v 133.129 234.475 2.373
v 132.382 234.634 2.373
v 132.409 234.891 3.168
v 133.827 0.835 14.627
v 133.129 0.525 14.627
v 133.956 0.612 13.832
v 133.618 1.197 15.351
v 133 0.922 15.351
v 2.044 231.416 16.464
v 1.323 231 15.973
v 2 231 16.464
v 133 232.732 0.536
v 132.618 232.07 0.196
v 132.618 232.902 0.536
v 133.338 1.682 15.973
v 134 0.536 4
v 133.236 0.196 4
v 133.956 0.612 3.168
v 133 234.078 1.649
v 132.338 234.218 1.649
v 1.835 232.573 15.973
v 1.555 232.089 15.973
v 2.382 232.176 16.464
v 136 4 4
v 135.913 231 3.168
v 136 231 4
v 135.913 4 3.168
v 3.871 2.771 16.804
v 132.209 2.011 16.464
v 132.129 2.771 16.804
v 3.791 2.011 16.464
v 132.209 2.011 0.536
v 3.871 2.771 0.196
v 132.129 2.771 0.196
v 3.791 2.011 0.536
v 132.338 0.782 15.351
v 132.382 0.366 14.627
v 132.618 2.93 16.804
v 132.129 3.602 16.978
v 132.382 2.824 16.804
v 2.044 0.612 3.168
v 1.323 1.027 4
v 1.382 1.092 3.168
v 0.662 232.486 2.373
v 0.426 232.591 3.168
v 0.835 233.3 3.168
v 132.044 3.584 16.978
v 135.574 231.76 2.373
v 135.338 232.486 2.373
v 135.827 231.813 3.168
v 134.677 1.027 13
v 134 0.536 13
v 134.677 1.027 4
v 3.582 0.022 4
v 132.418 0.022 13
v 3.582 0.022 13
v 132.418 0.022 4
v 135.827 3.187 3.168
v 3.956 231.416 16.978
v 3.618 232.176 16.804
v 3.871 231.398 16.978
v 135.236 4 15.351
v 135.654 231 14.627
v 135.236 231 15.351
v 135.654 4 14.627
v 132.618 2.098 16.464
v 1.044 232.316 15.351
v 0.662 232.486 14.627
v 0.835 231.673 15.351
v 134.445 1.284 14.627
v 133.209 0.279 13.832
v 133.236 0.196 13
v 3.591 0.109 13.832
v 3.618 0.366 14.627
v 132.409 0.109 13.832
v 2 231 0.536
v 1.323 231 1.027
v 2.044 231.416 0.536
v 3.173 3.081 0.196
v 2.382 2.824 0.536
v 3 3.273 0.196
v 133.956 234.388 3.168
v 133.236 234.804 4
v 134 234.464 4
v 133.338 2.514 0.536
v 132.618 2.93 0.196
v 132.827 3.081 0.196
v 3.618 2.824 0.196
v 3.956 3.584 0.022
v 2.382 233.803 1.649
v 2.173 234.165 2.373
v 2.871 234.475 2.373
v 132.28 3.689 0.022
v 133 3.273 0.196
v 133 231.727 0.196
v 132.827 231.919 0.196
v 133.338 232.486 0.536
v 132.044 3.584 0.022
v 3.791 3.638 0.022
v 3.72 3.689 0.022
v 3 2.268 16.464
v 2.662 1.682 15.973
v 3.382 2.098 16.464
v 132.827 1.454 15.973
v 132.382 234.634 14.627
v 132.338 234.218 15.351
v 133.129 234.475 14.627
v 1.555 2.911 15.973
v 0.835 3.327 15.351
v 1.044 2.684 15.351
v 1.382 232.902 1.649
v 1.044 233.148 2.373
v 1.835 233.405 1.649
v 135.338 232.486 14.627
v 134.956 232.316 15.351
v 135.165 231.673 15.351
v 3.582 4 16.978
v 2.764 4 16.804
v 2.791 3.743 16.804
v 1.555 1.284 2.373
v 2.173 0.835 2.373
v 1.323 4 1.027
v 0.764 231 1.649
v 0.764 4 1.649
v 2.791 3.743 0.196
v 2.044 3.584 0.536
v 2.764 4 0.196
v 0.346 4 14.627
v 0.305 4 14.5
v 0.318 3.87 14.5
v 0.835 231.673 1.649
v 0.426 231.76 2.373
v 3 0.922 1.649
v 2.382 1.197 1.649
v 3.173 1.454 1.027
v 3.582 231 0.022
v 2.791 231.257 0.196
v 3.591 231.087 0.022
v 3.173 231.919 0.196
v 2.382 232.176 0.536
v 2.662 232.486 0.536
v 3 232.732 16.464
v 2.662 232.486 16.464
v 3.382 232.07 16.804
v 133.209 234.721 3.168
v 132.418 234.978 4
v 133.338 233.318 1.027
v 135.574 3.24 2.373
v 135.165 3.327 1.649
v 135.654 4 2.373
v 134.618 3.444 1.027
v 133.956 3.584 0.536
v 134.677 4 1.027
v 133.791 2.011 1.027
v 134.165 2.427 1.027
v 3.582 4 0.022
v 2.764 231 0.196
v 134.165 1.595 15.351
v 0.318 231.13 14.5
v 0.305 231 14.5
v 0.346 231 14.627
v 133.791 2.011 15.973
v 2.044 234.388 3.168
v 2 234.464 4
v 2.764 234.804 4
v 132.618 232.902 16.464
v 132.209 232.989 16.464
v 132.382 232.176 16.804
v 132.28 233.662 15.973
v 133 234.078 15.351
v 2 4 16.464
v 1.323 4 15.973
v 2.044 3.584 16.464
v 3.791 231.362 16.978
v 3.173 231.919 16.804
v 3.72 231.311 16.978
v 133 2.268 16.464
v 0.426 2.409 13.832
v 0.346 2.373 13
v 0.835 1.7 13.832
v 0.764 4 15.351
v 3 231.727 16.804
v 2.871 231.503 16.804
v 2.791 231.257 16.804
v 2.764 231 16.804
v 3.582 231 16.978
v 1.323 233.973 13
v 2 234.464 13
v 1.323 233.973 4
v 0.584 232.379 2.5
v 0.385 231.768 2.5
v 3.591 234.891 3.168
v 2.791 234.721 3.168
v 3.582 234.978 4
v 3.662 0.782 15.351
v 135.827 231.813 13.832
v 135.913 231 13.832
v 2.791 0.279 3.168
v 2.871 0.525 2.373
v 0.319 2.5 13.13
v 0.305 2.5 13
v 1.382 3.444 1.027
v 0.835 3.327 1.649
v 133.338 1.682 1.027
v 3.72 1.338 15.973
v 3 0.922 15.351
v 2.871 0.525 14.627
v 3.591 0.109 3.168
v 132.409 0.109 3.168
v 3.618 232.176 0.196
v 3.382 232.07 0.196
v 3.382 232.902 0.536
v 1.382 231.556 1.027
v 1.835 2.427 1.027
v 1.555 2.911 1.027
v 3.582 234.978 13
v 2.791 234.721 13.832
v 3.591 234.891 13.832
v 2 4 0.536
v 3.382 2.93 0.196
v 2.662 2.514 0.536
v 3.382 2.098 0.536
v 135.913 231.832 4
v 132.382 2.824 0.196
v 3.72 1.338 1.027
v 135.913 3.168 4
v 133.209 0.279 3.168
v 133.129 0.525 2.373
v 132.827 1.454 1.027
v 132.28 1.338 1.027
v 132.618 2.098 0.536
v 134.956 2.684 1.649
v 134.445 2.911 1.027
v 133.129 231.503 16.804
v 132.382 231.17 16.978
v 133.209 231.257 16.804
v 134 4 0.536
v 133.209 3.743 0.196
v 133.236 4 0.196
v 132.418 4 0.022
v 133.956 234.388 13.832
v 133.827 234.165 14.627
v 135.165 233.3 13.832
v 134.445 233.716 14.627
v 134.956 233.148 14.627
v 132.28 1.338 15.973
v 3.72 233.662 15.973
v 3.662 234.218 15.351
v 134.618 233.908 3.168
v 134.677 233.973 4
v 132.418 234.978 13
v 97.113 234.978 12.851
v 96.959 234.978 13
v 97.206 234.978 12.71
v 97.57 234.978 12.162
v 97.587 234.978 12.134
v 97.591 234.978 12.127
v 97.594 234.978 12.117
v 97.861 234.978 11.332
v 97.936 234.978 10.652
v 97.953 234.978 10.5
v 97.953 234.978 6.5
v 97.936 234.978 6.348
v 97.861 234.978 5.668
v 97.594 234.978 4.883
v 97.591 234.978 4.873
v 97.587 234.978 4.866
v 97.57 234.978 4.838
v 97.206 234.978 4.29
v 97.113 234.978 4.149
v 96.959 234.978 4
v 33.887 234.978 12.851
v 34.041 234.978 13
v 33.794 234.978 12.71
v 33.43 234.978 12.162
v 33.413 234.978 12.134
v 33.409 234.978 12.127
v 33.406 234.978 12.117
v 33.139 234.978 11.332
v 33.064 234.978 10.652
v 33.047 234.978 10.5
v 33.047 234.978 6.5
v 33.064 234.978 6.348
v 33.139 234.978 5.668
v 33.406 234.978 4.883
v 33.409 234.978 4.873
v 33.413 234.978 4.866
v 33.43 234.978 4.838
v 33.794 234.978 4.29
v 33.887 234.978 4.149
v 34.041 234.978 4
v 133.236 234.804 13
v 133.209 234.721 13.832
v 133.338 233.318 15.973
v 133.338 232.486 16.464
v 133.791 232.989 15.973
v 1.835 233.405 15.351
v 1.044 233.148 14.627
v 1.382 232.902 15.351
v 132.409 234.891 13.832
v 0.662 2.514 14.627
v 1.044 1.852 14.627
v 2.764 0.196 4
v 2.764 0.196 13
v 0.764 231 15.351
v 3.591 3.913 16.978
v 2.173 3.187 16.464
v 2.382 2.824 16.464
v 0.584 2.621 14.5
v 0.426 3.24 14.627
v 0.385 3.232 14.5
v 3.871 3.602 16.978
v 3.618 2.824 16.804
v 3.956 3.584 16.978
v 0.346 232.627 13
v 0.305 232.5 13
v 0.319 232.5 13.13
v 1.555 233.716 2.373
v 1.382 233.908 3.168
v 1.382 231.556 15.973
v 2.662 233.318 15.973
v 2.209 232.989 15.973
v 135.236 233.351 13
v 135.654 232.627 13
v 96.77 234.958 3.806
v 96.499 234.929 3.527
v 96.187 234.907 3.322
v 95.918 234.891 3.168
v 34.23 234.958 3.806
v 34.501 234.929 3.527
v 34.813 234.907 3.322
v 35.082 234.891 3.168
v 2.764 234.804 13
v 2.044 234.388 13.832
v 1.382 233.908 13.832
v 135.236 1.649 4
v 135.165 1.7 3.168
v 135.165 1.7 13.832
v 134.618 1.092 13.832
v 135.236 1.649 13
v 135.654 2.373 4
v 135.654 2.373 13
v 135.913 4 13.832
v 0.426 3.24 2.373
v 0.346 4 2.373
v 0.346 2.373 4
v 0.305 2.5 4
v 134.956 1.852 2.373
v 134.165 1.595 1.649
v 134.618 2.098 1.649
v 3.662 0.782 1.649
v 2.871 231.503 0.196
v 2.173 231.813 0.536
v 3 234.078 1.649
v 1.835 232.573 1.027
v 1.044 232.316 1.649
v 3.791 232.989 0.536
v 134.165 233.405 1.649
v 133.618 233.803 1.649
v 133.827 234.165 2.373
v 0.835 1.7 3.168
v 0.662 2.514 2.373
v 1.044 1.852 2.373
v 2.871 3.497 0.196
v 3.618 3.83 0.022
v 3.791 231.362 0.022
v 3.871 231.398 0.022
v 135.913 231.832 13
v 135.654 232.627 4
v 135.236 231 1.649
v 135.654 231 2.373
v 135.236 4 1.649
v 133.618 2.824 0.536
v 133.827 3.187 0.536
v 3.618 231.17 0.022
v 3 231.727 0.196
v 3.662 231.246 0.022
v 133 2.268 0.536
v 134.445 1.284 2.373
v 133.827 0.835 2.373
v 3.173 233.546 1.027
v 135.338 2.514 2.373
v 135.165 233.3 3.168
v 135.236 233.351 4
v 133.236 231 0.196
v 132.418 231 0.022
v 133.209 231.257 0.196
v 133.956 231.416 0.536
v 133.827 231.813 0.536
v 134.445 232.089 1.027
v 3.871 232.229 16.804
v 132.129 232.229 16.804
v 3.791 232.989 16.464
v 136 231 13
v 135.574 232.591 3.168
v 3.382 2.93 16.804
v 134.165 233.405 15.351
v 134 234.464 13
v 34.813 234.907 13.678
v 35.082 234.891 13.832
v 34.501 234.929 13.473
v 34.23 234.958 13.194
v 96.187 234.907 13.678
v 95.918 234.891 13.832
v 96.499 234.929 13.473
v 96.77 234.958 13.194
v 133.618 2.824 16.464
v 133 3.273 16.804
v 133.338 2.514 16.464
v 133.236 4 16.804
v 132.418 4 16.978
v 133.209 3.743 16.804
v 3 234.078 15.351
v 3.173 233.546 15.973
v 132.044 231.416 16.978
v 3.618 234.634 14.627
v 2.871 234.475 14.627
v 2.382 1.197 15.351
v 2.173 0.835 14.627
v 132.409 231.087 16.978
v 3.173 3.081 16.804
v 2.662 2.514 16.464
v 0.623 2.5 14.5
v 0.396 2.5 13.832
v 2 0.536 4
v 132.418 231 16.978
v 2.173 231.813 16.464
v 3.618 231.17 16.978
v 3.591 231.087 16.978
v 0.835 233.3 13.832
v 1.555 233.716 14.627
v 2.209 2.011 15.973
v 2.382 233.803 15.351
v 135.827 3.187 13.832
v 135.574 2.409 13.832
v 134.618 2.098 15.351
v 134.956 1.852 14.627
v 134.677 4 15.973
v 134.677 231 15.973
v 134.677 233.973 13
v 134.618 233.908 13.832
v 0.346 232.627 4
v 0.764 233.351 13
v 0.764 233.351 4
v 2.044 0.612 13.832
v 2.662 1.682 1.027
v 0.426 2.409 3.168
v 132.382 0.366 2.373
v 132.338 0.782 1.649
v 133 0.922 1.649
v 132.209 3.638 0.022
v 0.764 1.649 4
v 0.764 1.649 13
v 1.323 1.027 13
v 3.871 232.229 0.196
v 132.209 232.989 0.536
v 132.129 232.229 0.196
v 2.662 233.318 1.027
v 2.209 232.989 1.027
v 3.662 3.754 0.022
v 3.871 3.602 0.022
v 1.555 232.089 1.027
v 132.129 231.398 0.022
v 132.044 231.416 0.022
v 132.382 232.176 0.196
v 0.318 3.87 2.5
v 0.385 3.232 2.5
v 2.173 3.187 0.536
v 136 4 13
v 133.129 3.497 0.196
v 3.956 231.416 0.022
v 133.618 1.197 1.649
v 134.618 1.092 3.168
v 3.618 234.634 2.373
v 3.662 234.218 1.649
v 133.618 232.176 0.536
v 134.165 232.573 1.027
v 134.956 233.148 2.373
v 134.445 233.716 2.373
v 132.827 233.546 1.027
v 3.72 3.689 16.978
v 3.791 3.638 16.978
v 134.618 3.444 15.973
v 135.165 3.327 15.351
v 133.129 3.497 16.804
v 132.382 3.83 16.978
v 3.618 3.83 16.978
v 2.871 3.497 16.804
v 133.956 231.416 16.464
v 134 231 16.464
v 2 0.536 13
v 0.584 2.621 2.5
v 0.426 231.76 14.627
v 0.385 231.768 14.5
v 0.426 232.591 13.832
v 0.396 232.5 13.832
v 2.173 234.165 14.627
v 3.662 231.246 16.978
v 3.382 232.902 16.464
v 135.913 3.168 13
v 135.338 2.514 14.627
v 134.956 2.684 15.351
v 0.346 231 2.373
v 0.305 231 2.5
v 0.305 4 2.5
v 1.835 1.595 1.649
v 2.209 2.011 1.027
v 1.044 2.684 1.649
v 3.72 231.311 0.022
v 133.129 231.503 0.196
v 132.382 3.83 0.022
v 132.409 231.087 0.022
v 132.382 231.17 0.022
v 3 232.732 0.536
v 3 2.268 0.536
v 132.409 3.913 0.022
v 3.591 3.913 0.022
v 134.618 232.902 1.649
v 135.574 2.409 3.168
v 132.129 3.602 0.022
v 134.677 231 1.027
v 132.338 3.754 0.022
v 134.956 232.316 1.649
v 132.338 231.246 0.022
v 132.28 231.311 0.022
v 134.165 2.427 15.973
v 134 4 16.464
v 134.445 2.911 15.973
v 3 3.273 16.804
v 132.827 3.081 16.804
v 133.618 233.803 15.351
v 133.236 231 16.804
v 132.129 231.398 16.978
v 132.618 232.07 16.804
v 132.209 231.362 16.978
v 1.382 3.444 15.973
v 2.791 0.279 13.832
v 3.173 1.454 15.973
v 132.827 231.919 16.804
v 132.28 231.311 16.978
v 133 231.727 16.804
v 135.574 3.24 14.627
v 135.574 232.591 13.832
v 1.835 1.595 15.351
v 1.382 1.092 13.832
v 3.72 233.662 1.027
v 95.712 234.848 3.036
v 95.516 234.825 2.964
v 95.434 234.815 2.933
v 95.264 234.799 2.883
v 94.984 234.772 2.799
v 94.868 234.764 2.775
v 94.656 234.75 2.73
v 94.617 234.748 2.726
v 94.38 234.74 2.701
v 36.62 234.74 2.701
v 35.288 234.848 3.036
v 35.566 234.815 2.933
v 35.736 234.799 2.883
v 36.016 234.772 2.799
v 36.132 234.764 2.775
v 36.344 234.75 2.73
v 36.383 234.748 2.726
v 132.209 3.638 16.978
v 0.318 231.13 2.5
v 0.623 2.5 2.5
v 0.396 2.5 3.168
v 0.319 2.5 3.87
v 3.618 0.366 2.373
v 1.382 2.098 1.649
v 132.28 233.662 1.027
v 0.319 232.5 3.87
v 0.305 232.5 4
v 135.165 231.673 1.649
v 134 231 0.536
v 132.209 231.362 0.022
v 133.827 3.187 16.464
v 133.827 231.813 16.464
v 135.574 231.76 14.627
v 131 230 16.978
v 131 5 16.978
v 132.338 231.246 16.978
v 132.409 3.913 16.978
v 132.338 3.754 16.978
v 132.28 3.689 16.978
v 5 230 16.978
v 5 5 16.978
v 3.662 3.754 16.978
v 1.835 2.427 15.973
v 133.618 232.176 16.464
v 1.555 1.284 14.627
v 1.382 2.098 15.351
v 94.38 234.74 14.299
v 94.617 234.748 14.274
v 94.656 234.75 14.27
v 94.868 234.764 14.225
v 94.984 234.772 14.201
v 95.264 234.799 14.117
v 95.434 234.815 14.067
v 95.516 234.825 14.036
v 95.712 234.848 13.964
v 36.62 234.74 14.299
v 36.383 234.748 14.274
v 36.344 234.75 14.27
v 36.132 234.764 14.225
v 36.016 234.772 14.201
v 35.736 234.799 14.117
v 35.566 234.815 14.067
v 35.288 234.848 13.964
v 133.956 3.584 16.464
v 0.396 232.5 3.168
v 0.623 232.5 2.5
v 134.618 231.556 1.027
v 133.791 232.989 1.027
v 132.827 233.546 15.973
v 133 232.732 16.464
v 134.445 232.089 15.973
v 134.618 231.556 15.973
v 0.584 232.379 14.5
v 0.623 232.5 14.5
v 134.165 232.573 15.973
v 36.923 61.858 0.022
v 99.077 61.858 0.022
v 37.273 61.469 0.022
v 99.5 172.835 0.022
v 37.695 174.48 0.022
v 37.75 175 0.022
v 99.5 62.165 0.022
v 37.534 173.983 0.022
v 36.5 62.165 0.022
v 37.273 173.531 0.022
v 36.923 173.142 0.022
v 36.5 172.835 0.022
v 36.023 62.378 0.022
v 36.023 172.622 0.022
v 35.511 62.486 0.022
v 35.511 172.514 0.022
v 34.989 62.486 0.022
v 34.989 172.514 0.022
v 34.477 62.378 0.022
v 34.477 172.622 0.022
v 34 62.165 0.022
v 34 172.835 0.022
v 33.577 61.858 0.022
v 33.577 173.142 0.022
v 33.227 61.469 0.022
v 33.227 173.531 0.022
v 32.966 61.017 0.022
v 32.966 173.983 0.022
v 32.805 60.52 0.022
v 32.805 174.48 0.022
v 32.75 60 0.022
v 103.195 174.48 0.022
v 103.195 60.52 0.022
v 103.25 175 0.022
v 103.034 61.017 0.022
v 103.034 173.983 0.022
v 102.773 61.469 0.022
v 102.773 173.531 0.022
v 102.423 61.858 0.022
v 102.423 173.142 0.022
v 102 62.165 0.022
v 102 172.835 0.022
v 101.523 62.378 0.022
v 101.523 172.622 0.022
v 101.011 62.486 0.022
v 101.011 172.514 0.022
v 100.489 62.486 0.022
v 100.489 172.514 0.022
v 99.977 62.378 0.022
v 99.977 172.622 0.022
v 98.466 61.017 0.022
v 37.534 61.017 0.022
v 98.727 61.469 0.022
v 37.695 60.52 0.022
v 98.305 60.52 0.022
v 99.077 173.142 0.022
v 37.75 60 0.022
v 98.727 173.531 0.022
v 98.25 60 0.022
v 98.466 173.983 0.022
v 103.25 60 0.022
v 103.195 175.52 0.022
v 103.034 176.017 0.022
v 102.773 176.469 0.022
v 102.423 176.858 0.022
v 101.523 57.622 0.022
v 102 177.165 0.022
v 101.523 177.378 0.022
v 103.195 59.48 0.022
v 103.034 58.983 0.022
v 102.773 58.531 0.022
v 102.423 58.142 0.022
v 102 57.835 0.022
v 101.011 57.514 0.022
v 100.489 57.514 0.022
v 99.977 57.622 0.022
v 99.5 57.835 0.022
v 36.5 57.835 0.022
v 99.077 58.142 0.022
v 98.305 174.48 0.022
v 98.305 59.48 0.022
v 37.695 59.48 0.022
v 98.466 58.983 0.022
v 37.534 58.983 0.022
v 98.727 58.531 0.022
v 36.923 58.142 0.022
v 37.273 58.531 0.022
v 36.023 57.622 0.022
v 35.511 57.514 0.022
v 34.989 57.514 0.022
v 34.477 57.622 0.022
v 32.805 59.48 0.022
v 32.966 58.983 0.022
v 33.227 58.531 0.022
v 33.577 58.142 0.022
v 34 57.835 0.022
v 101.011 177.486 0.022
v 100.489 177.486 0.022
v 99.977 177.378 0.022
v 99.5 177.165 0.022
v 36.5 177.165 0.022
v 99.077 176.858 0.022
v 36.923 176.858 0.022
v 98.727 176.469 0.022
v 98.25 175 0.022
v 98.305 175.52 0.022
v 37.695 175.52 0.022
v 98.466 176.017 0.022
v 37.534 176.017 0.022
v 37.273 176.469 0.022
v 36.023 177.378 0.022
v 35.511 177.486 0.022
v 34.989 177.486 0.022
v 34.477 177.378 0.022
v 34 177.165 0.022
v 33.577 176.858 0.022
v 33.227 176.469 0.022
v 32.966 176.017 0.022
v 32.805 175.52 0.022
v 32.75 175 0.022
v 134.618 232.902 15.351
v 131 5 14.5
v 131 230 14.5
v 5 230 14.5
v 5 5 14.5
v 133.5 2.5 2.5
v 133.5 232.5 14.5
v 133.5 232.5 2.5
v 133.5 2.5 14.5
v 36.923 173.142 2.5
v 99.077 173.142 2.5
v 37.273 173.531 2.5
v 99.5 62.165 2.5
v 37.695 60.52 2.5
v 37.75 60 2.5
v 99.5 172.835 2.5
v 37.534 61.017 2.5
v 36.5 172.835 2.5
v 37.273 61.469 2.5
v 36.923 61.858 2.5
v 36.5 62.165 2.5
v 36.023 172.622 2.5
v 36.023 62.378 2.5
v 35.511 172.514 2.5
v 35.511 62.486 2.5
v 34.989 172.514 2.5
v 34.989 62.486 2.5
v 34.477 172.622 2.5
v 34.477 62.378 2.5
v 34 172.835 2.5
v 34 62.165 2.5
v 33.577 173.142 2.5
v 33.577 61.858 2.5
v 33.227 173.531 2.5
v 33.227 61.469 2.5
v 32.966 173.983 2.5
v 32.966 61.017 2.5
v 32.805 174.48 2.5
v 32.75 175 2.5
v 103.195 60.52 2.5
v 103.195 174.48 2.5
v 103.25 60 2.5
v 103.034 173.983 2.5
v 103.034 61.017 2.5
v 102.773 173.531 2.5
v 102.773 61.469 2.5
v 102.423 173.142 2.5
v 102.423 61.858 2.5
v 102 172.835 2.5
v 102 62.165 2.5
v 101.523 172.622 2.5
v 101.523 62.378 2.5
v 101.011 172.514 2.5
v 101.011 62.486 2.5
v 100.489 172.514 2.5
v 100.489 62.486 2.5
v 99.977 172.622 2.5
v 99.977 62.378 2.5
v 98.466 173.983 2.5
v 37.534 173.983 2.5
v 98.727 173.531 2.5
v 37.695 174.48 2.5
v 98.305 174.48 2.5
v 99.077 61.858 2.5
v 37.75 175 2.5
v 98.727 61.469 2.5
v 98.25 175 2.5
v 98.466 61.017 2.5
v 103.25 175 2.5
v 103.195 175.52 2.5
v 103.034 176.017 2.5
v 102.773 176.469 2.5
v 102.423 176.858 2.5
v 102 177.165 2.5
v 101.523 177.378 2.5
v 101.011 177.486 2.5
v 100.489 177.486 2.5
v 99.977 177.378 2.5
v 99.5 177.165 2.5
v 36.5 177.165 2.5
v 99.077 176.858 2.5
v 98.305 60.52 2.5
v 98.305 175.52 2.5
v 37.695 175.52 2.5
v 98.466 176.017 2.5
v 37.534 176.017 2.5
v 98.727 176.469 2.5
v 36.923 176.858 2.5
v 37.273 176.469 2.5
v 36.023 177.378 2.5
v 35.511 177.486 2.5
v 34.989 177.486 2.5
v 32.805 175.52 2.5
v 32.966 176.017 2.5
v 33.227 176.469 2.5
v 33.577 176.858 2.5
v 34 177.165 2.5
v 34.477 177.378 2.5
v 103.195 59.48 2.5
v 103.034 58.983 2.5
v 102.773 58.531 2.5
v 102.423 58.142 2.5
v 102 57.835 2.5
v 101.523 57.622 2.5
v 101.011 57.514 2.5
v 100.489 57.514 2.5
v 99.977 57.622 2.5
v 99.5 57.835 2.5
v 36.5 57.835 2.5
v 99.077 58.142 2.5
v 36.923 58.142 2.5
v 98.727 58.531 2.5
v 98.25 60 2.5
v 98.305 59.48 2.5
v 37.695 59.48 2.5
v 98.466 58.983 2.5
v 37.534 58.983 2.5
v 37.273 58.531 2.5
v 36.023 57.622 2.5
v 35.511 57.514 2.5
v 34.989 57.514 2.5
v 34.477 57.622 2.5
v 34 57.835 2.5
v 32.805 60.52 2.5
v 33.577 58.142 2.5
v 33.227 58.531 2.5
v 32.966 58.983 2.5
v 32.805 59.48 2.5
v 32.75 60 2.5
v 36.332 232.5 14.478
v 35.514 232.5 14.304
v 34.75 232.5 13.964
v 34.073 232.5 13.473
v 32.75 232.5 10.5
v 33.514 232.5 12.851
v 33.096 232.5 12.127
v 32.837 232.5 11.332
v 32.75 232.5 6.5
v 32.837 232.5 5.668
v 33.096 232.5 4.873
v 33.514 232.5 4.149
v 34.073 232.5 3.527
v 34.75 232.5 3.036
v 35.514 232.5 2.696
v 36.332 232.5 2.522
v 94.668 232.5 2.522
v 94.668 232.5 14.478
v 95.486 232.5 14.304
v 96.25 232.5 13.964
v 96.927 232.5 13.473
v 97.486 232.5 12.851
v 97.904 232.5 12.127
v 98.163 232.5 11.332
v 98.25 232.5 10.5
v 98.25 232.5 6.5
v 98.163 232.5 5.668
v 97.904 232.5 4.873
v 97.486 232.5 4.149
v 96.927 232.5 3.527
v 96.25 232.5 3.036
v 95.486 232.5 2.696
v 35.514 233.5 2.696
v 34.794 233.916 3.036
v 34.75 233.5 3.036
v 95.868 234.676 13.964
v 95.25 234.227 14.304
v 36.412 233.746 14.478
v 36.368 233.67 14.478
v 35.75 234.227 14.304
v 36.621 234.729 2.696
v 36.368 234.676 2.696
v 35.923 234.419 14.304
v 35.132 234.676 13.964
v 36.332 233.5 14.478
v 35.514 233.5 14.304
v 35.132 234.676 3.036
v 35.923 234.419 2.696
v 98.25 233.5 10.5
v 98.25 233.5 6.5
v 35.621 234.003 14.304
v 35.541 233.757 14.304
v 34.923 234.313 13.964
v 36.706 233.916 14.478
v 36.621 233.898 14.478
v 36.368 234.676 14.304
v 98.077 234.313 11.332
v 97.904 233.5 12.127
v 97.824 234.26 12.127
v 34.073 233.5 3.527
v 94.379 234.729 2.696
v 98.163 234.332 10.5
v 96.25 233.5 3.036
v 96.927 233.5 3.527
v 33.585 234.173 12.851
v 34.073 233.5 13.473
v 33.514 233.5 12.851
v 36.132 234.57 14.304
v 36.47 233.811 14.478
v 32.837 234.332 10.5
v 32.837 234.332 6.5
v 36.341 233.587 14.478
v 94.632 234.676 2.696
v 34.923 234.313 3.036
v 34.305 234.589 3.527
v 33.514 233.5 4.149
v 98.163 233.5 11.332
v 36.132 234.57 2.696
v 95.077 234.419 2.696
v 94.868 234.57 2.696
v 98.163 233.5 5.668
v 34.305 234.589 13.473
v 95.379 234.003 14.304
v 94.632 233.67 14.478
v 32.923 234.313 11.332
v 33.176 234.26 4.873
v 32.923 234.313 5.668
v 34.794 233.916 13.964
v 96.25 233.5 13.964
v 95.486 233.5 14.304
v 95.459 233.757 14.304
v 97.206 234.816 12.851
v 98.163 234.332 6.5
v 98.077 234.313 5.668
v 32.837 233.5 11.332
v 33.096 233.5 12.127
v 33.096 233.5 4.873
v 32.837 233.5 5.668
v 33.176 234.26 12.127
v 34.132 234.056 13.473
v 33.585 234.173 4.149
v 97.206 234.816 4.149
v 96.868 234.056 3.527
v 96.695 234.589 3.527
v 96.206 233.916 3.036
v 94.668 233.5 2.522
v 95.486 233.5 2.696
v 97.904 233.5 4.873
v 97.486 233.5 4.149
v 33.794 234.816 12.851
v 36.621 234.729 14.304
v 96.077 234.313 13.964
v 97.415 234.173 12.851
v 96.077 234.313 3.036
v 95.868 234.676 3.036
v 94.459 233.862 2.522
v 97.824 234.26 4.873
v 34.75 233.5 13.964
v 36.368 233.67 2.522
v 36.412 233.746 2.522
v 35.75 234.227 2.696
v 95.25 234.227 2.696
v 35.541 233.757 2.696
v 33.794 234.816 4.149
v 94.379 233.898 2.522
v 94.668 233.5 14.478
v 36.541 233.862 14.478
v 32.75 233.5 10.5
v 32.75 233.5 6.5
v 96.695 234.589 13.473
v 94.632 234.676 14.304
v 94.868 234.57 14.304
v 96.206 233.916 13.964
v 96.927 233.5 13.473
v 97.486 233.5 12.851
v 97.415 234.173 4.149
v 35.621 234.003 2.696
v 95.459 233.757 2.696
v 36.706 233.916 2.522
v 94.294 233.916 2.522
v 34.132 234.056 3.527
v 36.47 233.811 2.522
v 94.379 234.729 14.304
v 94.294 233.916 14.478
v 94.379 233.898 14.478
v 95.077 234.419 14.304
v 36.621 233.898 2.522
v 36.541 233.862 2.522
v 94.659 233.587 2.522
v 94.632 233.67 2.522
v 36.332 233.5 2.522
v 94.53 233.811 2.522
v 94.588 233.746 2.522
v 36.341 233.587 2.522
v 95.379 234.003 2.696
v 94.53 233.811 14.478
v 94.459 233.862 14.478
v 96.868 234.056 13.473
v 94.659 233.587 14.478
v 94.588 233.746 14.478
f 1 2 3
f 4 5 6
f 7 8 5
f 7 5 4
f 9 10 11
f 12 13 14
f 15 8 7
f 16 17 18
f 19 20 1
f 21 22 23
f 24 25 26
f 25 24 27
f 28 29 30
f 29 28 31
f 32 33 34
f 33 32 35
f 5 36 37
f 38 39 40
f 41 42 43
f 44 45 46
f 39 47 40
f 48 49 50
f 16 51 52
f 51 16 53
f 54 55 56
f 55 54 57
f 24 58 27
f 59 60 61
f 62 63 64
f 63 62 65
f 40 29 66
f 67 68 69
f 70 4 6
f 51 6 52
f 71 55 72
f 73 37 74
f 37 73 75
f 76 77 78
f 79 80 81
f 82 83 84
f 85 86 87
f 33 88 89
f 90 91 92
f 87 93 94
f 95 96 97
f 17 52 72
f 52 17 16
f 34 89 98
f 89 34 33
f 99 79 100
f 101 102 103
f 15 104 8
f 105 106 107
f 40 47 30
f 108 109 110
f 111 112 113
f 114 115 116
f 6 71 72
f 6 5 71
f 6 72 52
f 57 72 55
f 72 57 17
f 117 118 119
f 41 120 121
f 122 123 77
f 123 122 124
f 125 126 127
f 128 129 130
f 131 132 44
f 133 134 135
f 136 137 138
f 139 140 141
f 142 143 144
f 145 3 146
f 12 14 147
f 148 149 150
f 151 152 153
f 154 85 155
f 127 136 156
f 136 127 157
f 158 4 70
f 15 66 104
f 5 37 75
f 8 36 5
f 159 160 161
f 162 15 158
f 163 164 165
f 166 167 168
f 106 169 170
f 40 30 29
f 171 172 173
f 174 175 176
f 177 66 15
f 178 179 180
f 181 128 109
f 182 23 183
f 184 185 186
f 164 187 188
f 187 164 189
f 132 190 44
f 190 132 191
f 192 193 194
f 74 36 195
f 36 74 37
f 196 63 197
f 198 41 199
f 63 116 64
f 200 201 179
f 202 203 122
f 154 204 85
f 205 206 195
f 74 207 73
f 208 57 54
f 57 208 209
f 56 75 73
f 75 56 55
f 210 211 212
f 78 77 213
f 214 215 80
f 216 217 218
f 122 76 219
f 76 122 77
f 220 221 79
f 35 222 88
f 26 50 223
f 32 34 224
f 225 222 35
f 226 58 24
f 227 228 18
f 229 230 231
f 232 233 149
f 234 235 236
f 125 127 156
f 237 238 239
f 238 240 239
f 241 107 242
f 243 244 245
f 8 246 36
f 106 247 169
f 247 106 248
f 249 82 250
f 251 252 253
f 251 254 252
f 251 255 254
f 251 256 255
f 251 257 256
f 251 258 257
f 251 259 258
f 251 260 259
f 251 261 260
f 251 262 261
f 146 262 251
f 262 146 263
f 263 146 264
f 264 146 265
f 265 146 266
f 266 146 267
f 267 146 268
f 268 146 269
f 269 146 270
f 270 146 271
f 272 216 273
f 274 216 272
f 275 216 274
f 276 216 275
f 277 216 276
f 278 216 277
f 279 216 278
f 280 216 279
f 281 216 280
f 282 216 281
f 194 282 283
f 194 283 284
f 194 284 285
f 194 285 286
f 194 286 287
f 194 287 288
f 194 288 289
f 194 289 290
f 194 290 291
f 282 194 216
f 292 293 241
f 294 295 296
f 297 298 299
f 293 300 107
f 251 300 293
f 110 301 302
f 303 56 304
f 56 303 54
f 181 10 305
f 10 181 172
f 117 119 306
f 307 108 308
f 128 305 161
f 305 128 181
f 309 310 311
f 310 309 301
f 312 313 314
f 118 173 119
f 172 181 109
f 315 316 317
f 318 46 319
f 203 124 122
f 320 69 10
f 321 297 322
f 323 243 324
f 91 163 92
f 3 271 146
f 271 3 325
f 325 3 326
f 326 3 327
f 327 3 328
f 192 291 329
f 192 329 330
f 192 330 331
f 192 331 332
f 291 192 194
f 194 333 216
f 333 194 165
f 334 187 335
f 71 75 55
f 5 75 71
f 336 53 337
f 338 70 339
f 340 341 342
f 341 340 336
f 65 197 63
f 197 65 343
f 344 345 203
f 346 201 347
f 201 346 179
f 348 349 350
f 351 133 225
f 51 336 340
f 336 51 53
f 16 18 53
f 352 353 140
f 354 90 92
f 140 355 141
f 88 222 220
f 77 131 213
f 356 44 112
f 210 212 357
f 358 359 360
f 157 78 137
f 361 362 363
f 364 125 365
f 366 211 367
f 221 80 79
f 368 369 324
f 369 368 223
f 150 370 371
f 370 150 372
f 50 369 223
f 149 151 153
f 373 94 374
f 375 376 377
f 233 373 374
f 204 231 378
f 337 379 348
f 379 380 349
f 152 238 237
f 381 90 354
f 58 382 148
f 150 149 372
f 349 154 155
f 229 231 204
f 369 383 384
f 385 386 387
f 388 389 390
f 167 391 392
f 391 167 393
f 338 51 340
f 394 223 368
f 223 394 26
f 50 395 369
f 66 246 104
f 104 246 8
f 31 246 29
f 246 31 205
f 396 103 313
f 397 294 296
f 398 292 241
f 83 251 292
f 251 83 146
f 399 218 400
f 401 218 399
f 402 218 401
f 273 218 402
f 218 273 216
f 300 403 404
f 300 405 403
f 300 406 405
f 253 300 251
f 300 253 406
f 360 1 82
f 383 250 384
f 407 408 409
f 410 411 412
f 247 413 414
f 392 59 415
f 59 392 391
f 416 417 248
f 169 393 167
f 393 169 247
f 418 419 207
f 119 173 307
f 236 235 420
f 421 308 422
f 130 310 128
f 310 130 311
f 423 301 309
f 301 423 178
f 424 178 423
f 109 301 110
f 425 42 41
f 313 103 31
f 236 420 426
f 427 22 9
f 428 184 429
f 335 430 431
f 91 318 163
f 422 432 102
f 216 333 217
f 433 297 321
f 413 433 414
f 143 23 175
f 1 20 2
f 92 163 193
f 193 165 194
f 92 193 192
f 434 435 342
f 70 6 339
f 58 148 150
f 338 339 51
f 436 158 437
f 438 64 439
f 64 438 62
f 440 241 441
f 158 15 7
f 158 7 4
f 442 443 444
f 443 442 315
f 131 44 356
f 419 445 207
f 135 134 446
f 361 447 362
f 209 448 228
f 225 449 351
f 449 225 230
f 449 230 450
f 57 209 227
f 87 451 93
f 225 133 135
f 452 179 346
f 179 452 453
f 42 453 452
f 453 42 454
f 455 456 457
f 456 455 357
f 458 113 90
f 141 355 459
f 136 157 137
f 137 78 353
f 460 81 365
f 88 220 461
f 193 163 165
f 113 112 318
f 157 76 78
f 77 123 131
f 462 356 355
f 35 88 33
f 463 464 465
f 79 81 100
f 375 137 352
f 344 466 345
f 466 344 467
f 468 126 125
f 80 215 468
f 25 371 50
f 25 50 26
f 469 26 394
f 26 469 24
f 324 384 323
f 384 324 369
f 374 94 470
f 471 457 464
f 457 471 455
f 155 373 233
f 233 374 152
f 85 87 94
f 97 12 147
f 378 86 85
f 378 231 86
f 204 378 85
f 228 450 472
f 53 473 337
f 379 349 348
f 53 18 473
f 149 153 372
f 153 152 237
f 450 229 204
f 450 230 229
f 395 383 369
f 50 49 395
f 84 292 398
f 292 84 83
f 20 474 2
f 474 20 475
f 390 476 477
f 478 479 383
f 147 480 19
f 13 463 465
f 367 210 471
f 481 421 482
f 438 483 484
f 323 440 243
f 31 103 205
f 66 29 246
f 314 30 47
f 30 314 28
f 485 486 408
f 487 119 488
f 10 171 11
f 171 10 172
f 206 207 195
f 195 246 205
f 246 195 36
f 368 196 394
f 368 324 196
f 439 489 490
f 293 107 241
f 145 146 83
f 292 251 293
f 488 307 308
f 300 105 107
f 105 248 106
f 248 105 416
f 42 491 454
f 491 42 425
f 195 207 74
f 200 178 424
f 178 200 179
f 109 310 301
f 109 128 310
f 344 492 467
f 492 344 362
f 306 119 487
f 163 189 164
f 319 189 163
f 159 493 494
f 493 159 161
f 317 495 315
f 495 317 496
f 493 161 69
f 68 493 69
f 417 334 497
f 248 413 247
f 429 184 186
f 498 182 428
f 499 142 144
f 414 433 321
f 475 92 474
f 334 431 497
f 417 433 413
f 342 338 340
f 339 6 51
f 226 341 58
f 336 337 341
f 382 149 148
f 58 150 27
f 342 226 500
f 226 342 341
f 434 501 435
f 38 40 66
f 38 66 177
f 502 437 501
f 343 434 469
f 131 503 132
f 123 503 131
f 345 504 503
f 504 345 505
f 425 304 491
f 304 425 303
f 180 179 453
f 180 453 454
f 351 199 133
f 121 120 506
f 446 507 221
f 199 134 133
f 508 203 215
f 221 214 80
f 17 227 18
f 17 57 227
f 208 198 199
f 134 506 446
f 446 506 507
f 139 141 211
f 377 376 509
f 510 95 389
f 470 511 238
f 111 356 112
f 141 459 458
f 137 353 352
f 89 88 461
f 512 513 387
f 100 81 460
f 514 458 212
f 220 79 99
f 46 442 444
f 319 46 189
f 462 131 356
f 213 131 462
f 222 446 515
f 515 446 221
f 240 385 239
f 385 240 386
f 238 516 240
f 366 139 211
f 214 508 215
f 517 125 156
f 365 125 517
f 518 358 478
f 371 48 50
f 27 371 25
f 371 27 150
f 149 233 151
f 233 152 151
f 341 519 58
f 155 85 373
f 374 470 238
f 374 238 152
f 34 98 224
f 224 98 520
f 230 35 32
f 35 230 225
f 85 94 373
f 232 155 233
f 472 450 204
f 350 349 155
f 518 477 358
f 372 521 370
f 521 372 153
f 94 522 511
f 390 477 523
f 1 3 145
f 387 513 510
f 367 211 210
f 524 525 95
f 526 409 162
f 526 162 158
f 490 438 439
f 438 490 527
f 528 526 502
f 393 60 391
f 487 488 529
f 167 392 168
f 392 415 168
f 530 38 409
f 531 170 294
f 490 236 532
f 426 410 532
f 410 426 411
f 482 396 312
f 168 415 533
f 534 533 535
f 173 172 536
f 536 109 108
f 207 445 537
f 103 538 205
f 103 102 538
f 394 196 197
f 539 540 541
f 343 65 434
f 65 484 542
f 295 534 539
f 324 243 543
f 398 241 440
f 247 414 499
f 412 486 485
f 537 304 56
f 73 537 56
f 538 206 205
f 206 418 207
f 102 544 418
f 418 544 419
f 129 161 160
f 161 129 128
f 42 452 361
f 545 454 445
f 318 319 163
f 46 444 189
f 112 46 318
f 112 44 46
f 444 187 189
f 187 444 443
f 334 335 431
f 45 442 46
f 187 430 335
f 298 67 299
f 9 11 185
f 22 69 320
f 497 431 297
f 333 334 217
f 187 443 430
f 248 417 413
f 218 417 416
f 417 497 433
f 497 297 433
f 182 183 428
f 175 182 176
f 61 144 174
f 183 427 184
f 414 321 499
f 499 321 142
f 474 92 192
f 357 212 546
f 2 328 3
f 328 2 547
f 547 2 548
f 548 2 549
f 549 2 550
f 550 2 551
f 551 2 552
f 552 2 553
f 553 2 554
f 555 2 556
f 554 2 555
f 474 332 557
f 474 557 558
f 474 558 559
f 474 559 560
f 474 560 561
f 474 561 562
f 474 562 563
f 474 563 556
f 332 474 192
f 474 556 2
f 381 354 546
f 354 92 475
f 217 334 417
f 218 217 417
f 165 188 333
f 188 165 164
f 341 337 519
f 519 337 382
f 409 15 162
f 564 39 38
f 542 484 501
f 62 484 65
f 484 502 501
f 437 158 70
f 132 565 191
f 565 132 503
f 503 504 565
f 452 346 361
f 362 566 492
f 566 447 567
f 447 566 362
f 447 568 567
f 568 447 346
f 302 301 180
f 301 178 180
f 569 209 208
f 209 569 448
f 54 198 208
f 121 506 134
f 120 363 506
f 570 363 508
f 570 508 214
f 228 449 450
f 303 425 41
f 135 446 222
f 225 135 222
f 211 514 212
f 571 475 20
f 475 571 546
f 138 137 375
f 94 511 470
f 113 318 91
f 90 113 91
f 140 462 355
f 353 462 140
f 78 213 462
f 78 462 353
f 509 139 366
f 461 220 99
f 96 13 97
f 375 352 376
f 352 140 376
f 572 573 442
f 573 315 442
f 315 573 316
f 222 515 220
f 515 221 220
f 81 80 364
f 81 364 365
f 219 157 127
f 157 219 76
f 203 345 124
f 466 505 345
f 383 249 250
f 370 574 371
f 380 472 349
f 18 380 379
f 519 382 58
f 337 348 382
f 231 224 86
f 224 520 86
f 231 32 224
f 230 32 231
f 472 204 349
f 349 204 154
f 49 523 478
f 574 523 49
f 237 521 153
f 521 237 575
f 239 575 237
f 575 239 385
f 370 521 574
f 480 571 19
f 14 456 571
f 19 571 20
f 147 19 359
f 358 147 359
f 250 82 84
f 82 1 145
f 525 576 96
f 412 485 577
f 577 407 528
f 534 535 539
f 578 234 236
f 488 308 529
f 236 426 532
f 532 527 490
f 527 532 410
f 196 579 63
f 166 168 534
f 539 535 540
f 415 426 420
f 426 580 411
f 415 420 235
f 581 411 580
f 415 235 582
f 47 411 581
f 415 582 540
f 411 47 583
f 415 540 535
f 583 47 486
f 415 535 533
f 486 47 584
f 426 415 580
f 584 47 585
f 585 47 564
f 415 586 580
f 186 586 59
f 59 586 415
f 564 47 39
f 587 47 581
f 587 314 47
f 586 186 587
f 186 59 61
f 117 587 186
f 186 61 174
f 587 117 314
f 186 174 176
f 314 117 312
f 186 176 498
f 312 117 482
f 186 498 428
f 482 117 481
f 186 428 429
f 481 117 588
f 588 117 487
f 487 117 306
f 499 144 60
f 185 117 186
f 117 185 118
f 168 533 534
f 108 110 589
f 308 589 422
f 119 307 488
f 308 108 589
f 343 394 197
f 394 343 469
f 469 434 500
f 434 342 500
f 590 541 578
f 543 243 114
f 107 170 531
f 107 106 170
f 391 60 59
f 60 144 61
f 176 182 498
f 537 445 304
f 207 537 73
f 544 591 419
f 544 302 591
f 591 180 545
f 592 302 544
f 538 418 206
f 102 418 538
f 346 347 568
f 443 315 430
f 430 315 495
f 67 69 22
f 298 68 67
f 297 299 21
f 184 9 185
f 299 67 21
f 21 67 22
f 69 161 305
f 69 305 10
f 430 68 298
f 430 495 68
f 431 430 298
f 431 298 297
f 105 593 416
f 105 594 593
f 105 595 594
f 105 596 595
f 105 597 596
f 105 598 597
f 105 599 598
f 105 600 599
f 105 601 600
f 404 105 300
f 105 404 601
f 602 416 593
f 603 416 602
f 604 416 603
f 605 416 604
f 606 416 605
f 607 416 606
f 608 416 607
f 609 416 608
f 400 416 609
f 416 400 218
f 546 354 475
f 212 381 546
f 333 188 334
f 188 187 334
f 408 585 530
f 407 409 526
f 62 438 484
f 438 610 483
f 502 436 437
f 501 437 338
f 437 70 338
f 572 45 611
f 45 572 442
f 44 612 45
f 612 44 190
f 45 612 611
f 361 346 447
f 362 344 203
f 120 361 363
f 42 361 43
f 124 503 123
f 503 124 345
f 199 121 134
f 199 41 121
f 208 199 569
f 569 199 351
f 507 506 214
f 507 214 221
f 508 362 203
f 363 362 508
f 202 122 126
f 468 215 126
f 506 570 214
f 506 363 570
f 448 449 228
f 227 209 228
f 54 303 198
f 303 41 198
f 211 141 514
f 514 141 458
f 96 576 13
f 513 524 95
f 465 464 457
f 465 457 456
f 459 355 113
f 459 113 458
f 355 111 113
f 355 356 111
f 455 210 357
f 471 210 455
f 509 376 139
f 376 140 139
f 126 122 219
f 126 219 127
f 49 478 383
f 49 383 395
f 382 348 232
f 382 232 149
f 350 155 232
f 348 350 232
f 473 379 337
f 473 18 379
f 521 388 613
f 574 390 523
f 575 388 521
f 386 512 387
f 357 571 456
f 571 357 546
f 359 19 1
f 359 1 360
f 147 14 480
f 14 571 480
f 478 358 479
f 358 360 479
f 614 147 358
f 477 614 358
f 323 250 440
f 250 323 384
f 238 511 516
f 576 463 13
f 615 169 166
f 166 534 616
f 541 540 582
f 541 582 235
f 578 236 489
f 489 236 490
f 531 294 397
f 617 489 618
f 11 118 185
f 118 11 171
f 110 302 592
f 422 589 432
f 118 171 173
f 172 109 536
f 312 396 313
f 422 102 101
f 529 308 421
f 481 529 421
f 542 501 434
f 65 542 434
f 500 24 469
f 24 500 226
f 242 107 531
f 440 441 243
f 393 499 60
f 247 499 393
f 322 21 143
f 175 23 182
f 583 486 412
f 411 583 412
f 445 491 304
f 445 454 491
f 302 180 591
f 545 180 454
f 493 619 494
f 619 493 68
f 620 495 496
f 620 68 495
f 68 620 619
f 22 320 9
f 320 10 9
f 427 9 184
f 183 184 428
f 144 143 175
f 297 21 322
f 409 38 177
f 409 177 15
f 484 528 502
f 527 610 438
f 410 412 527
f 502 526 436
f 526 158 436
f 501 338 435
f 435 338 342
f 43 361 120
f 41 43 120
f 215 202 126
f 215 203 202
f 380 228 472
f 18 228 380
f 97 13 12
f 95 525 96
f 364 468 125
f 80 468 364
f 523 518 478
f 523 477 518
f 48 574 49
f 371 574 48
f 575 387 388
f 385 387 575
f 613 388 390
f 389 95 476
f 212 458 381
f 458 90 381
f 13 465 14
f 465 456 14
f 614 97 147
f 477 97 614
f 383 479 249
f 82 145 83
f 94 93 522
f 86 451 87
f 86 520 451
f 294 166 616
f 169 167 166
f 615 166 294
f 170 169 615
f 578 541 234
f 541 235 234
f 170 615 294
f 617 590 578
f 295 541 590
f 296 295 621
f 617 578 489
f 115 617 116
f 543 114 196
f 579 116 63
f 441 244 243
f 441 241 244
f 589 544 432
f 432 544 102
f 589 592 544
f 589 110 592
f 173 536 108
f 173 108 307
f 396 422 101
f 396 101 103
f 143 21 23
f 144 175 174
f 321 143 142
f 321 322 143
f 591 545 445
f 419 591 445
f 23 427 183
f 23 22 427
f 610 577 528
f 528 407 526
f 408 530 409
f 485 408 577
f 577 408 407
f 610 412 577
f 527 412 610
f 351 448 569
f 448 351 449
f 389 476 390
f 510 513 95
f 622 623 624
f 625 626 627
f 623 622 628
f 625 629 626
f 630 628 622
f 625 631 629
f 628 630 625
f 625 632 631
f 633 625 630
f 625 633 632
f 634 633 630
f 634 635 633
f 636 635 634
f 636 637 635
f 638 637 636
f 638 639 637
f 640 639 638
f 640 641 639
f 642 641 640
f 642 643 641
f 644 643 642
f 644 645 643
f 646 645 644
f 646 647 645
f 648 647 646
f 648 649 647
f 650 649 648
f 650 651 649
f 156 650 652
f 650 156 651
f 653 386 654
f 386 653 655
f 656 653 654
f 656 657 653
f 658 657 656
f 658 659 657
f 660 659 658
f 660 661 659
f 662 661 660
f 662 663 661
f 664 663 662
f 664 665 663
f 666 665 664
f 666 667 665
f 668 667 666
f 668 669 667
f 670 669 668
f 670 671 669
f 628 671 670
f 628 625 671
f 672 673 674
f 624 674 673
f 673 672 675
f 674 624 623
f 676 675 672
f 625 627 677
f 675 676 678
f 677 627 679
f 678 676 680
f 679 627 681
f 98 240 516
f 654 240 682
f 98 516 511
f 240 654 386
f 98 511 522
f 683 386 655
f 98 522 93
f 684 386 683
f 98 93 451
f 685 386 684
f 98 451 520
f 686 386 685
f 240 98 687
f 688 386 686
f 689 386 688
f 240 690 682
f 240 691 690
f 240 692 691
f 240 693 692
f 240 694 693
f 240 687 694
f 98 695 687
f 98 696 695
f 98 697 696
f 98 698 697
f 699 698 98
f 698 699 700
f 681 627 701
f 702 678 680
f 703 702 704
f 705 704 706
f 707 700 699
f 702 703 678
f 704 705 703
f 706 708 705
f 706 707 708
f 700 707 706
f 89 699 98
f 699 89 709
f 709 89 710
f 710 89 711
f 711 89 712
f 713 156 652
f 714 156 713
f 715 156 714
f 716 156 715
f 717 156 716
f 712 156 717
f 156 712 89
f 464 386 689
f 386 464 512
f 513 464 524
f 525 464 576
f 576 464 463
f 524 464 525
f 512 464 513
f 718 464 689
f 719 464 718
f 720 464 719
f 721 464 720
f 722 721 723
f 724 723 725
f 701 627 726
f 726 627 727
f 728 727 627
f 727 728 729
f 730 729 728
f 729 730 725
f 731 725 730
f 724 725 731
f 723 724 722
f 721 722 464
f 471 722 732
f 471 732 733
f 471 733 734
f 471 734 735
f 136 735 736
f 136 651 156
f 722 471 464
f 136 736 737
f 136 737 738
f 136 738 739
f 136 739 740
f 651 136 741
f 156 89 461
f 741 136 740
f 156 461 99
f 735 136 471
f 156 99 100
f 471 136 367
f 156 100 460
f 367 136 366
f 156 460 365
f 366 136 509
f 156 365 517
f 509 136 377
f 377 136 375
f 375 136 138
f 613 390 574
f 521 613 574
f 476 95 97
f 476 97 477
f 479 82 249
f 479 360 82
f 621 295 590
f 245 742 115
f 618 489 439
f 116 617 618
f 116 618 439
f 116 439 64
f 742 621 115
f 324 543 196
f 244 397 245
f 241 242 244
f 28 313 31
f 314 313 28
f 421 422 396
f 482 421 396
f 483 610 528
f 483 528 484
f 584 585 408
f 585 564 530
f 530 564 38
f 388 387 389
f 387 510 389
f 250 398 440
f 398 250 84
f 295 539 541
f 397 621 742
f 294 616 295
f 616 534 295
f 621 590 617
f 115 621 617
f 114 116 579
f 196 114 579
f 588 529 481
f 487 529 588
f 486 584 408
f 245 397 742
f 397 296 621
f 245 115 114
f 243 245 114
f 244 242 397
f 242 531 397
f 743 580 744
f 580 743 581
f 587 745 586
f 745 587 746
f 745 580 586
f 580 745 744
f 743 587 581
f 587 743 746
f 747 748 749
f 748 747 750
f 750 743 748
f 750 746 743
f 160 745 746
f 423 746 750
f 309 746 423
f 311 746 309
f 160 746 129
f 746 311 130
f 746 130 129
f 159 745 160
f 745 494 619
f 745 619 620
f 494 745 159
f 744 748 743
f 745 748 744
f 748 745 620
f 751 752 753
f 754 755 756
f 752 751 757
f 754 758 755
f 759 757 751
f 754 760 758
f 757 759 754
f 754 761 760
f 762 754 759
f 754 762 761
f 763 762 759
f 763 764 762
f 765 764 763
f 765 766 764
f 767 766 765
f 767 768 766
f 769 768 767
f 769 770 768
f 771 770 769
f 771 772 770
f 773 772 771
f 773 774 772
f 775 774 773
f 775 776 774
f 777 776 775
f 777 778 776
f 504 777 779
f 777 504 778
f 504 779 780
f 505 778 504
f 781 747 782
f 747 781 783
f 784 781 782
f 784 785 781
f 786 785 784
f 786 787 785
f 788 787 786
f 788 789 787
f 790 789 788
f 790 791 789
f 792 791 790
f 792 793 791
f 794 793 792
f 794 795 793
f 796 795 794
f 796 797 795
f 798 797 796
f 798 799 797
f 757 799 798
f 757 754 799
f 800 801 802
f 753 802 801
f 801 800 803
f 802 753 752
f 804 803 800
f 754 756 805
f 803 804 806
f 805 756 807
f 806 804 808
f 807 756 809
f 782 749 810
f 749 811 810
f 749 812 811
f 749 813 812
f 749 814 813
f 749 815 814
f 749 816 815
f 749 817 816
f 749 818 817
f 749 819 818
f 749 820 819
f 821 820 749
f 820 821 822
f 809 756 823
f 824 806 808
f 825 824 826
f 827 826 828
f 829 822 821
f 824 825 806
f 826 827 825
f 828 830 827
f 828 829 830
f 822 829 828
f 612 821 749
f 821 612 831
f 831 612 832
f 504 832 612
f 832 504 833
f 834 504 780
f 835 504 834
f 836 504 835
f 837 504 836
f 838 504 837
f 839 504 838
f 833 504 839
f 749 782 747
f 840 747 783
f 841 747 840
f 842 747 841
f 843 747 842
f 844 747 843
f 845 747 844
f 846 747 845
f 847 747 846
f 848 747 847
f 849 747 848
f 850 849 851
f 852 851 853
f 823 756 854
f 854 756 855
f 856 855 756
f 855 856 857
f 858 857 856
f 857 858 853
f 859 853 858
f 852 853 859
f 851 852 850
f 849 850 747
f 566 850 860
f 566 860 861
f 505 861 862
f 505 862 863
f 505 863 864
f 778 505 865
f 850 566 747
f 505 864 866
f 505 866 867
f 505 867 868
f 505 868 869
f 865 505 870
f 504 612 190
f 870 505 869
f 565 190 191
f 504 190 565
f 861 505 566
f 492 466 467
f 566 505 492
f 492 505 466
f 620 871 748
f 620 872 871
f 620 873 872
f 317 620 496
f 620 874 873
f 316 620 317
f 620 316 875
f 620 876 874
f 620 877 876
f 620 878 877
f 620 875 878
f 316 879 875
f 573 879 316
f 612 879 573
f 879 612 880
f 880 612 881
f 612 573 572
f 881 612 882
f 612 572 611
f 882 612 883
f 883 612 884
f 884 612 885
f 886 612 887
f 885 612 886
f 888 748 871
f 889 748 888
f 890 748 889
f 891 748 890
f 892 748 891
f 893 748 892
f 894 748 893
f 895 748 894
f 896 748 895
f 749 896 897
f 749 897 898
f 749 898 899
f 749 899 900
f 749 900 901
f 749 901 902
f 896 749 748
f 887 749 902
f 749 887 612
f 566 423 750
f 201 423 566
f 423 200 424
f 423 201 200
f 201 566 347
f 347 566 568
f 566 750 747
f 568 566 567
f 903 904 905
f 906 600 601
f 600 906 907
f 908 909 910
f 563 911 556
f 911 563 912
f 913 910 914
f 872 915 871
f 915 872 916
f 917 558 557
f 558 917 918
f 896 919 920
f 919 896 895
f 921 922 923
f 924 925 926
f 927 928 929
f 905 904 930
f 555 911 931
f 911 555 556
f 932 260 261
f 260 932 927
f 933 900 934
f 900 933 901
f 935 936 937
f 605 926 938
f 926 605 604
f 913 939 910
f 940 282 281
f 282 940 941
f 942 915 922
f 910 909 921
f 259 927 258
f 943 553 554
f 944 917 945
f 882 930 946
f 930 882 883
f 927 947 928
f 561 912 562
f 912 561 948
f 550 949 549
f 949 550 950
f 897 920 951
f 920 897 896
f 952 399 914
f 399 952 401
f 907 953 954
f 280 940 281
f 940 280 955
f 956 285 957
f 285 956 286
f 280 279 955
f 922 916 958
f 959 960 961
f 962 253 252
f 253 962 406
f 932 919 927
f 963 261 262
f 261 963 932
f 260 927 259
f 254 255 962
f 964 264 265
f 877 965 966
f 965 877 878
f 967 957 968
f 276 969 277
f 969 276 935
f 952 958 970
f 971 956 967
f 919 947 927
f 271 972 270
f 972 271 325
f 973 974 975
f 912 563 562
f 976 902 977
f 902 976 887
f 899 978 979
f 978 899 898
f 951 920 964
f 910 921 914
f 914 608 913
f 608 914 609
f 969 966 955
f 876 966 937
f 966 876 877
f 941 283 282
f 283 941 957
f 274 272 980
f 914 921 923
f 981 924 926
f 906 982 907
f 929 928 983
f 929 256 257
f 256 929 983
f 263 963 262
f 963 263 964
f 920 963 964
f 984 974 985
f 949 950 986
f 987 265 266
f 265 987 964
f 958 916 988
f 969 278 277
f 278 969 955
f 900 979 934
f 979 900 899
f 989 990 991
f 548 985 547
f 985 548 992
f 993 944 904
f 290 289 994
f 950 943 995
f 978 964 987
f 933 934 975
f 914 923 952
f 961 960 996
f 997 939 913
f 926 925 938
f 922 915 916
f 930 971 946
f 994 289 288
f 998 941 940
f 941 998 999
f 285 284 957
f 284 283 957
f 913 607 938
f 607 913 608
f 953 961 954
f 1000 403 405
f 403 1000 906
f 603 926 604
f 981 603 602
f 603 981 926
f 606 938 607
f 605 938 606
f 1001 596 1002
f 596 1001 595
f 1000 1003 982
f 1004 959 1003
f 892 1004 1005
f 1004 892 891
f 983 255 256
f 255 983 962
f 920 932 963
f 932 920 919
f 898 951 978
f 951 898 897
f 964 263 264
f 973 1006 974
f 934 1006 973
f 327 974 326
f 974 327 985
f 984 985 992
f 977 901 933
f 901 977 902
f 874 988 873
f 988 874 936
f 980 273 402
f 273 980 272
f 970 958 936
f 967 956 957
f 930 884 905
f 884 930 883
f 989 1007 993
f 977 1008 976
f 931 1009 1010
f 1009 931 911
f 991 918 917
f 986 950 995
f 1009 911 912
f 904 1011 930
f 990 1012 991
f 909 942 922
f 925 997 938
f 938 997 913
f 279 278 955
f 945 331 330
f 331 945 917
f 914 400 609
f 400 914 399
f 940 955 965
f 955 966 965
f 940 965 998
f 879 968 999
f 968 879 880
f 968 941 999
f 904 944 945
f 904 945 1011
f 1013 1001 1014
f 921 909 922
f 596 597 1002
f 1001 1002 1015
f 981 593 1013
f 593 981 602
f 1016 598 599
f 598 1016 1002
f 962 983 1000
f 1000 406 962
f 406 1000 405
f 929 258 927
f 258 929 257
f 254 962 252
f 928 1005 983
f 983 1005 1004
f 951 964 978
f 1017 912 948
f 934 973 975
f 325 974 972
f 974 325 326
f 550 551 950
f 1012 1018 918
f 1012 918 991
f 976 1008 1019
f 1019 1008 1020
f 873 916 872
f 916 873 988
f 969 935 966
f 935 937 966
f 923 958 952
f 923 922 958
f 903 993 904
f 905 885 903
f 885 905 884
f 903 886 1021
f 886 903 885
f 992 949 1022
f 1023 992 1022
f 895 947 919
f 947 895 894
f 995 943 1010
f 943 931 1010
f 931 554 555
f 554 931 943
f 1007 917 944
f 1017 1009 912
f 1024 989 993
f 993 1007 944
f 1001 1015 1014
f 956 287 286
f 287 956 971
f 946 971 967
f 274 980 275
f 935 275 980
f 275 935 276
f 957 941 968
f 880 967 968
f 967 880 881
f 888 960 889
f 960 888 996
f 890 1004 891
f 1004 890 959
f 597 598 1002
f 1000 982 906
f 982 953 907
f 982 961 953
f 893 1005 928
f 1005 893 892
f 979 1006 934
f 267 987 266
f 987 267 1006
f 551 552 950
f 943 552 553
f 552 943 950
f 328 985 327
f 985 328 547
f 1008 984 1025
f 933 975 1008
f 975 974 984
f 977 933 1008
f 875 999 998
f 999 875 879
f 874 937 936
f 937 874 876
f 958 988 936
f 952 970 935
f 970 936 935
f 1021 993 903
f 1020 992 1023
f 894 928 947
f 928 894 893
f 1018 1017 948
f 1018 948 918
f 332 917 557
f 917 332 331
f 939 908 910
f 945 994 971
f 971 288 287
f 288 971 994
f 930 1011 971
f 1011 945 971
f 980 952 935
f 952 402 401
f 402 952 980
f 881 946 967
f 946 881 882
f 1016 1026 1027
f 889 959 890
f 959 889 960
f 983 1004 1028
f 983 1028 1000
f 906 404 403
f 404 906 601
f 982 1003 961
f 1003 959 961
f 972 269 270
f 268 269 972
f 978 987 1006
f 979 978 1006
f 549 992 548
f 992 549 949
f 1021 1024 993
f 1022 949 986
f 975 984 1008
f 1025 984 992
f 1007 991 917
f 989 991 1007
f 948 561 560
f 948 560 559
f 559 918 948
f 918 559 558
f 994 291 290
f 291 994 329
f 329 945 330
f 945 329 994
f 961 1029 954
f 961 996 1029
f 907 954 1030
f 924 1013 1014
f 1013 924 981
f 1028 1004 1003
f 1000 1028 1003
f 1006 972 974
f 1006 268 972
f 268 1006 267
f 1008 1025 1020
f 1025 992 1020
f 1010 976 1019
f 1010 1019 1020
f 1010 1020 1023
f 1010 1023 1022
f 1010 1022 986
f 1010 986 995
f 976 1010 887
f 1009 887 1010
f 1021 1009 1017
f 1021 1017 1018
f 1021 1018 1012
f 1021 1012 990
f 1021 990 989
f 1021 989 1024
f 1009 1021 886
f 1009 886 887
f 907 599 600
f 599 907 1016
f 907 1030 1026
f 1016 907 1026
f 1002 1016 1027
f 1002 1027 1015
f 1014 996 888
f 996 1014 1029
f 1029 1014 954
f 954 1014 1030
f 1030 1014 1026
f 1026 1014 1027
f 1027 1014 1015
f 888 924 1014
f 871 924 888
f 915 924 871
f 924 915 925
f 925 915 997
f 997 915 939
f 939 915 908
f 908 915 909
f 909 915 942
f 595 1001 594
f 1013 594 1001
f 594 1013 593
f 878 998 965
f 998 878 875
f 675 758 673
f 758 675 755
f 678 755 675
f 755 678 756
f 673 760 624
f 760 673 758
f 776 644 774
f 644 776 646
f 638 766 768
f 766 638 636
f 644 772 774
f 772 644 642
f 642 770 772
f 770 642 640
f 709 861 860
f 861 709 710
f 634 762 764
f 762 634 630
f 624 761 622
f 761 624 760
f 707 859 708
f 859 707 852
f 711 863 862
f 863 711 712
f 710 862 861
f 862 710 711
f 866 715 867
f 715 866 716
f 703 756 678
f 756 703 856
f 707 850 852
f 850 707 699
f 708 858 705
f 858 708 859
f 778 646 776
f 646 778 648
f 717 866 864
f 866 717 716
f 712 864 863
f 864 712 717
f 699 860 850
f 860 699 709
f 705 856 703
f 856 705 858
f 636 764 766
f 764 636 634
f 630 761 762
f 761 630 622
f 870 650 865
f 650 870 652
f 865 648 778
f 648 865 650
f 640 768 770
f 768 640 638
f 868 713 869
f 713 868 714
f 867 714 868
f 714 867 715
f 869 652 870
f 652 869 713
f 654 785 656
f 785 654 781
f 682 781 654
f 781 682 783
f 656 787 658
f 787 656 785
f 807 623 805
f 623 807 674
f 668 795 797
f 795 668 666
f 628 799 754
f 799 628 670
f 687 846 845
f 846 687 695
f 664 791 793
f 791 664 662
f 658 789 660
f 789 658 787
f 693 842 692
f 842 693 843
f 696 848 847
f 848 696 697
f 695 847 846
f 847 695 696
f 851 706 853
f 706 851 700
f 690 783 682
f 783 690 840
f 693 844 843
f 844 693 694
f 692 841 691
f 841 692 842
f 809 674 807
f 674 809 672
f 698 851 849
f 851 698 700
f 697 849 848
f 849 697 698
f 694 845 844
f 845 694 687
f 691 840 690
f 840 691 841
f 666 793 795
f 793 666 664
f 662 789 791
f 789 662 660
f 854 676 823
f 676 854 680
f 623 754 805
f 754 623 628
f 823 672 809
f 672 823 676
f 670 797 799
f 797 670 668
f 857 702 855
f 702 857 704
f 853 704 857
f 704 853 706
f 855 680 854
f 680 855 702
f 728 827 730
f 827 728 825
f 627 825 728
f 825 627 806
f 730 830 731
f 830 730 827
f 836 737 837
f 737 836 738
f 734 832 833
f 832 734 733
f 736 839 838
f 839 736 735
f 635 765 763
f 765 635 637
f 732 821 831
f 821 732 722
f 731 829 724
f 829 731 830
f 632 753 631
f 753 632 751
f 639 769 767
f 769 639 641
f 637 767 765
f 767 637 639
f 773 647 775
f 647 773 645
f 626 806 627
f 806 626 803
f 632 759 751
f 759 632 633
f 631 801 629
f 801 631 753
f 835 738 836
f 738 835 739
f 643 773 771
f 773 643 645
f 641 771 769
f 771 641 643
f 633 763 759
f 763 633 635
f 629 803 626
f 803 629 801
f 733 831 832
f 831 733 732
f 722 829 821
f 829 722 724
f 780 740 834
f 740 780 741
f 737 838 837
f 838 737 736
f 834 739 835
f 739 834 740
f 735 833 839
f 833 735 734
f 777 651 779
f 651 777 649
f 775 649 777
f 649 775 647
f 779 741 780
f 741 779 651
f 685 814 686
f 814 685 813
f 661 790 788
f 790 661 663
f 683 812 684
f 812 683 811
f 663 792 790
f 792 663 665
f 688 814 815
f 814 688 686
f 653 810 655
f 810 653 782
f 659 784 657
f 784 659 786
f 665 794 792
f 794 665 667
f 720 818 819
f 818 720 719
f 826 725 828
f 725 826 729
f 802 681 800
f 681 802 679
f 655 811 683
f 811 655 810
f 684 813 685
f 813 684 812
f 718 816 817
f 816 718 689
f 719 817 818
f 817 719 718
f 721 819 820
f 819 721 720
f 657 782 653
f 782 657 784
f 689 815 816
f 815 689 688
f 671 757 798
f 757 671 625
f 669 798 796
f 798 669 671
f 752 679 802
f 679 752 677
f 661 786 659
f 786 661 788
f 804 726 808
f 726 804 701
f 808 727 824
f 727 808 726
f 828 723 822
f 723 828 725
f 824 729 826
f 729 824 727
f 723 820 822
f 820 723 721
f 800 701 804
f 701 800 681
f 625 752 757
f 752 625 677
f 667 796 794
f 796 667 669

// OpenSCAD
//tablet_width     = 127;
//tablet_height    = 226;
//tablet_thickness =   9;

tablet_width     = 131;
tablet_height    = 230;
tablet_thickness =  12;

thickness        =   2.5;
corner           =   4;
$fn              =  30;

module rounded_cube( length, width, height, corner ) {
    hull() {
            translate( [0 * length + corner, 0 * width + corner, 0 * height + corner ]) sphere( r = corner );
            translate( [0 * length + corner, 1 * width - corner, 0 * height + corner ]) sphere( r = corner );
            translate( [1 * length - corner, 0 * width + corner, 0 * height + corner ]) sphere( r = corner );
            translate( [1 * length - corner, 1 * width - corner, 0 * height + corner ]) sphere( r = corner );
            translate( [0 * length + corner, 0 * width + corner, 1 * height - corner ]) sphere( r = corner );
            translate( [0 * length + corner, 1 * width - corner, 1 * height - corner ]) sphere( r = corner );
            translate( [1 * length - corner, 0 * width + corner, 1 * height - corner ]) sphere( r = corner );
            translate( [1 * length - corner, 1 * width - corner, 1 * height - corner ]) sphere( r = corner );
    }
}

module holder() {
    difference() {
        rounded_cube(
            length = tablet_width + 2 * thickness,
            width  = tablet_height + 2 * thickness,
            height = tablet_thickness + 2 * thickness,
            corner = corner
        );
  

        //slit to view screen
        translate([2*thickness, 2*thickness, tablet_thickness])
            cube([
                tablet_width - 2 * thickness,
                tablet_height - 2 * thickness,
                tablet_thickness
            ]);

        //slit for tablet
        translate([-thickness, thickness, thickness])
            cube([
                tablet_width+2*thickness,
                tablet_height,
                tablet_thickness
            ]);
    
        //slit for charging
        translate([ 0.25*tablet_width, tablet_height-thickness, thickness])
        rounded_cube(0.5*tablet_width, 4*thickness, tablet_thickness, corner);        
        
        //holes for string attachmentt
        color([1, 0, 0])
        translate( [
            thickness+0.25*tablet_width,
            thickness+0.25*tablet_height,
            -thickness
        ])
        cylinder( h = 4 * thickness, d = 2*thickness );
    
        color([1, 0, 0])
        translate( [
            thickness+0.75*tablet_width,
            thickness+0.25*tablet_height,
            -thickness
        ])
        cylinder( h = 4 * thickness, d = 2*thickness );
    
        color([1, 0, 0])
        translate( [
            thickness+0.25*tablet_width,
            thickness+0.75*tablet_height,
            -thickness
        ])
        cylinder( h = 4 * thickness, d = 2*thickness );
    
    
        color([1, 0, 0])
        translate( [
            thickness+0.75*tablet_width,
            thickness+0.75*tablet_height,
            -thickness
        ])
        cylinder( h = 4 * thickness, d = 2*thickness );
   
    }
}

holder();
